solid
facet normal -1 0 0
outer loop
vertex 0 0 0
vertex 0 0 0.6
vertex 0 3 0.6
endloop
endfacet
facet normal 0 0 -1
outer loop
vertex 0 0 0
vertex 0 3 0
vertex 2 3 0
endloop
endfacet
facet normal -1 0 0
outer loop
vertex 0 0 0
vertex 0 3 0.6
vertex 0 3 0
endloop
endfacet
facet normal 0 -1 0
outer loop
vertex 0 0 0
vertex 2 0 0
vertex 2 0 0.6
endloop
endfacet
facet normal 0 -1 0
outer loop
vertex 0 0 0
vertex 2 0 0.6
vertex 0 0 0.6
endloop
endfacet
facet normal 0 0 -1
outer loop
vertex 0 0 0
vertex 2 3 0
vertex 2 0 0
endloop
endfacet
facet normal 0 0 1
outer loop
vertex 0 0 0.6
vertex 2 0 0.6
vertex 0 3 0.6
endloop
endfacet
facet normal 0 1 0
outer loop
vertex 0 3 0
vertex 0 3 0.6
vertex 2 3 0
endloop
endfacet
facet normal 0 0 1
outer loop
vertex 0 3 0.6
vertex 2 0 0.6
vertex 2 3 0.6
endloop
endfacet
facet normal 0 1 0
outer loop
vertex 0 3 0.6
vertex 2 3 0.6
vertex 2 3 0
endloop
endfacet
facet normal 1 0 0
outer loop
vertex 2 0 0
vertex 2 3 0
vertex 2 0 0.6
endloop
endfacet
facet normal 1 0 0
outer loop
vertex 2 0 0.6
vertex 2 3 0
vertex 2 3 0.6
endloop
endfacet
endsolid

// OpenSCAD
/* Warning, this is a very basic generator with a lot of approximation 
input data : [UDFN, Q3X, 2x3x0.6mm, 8, , C, C04-00203C]
generated by com.zoubworld.electronics.cad.model3d.Basic
Date : Sun Feb 15 10:50:48 CET 2026
*/

//body
color("black")
translate([0,0,0])
cube([2.0,3.0,0.6], center=false);
